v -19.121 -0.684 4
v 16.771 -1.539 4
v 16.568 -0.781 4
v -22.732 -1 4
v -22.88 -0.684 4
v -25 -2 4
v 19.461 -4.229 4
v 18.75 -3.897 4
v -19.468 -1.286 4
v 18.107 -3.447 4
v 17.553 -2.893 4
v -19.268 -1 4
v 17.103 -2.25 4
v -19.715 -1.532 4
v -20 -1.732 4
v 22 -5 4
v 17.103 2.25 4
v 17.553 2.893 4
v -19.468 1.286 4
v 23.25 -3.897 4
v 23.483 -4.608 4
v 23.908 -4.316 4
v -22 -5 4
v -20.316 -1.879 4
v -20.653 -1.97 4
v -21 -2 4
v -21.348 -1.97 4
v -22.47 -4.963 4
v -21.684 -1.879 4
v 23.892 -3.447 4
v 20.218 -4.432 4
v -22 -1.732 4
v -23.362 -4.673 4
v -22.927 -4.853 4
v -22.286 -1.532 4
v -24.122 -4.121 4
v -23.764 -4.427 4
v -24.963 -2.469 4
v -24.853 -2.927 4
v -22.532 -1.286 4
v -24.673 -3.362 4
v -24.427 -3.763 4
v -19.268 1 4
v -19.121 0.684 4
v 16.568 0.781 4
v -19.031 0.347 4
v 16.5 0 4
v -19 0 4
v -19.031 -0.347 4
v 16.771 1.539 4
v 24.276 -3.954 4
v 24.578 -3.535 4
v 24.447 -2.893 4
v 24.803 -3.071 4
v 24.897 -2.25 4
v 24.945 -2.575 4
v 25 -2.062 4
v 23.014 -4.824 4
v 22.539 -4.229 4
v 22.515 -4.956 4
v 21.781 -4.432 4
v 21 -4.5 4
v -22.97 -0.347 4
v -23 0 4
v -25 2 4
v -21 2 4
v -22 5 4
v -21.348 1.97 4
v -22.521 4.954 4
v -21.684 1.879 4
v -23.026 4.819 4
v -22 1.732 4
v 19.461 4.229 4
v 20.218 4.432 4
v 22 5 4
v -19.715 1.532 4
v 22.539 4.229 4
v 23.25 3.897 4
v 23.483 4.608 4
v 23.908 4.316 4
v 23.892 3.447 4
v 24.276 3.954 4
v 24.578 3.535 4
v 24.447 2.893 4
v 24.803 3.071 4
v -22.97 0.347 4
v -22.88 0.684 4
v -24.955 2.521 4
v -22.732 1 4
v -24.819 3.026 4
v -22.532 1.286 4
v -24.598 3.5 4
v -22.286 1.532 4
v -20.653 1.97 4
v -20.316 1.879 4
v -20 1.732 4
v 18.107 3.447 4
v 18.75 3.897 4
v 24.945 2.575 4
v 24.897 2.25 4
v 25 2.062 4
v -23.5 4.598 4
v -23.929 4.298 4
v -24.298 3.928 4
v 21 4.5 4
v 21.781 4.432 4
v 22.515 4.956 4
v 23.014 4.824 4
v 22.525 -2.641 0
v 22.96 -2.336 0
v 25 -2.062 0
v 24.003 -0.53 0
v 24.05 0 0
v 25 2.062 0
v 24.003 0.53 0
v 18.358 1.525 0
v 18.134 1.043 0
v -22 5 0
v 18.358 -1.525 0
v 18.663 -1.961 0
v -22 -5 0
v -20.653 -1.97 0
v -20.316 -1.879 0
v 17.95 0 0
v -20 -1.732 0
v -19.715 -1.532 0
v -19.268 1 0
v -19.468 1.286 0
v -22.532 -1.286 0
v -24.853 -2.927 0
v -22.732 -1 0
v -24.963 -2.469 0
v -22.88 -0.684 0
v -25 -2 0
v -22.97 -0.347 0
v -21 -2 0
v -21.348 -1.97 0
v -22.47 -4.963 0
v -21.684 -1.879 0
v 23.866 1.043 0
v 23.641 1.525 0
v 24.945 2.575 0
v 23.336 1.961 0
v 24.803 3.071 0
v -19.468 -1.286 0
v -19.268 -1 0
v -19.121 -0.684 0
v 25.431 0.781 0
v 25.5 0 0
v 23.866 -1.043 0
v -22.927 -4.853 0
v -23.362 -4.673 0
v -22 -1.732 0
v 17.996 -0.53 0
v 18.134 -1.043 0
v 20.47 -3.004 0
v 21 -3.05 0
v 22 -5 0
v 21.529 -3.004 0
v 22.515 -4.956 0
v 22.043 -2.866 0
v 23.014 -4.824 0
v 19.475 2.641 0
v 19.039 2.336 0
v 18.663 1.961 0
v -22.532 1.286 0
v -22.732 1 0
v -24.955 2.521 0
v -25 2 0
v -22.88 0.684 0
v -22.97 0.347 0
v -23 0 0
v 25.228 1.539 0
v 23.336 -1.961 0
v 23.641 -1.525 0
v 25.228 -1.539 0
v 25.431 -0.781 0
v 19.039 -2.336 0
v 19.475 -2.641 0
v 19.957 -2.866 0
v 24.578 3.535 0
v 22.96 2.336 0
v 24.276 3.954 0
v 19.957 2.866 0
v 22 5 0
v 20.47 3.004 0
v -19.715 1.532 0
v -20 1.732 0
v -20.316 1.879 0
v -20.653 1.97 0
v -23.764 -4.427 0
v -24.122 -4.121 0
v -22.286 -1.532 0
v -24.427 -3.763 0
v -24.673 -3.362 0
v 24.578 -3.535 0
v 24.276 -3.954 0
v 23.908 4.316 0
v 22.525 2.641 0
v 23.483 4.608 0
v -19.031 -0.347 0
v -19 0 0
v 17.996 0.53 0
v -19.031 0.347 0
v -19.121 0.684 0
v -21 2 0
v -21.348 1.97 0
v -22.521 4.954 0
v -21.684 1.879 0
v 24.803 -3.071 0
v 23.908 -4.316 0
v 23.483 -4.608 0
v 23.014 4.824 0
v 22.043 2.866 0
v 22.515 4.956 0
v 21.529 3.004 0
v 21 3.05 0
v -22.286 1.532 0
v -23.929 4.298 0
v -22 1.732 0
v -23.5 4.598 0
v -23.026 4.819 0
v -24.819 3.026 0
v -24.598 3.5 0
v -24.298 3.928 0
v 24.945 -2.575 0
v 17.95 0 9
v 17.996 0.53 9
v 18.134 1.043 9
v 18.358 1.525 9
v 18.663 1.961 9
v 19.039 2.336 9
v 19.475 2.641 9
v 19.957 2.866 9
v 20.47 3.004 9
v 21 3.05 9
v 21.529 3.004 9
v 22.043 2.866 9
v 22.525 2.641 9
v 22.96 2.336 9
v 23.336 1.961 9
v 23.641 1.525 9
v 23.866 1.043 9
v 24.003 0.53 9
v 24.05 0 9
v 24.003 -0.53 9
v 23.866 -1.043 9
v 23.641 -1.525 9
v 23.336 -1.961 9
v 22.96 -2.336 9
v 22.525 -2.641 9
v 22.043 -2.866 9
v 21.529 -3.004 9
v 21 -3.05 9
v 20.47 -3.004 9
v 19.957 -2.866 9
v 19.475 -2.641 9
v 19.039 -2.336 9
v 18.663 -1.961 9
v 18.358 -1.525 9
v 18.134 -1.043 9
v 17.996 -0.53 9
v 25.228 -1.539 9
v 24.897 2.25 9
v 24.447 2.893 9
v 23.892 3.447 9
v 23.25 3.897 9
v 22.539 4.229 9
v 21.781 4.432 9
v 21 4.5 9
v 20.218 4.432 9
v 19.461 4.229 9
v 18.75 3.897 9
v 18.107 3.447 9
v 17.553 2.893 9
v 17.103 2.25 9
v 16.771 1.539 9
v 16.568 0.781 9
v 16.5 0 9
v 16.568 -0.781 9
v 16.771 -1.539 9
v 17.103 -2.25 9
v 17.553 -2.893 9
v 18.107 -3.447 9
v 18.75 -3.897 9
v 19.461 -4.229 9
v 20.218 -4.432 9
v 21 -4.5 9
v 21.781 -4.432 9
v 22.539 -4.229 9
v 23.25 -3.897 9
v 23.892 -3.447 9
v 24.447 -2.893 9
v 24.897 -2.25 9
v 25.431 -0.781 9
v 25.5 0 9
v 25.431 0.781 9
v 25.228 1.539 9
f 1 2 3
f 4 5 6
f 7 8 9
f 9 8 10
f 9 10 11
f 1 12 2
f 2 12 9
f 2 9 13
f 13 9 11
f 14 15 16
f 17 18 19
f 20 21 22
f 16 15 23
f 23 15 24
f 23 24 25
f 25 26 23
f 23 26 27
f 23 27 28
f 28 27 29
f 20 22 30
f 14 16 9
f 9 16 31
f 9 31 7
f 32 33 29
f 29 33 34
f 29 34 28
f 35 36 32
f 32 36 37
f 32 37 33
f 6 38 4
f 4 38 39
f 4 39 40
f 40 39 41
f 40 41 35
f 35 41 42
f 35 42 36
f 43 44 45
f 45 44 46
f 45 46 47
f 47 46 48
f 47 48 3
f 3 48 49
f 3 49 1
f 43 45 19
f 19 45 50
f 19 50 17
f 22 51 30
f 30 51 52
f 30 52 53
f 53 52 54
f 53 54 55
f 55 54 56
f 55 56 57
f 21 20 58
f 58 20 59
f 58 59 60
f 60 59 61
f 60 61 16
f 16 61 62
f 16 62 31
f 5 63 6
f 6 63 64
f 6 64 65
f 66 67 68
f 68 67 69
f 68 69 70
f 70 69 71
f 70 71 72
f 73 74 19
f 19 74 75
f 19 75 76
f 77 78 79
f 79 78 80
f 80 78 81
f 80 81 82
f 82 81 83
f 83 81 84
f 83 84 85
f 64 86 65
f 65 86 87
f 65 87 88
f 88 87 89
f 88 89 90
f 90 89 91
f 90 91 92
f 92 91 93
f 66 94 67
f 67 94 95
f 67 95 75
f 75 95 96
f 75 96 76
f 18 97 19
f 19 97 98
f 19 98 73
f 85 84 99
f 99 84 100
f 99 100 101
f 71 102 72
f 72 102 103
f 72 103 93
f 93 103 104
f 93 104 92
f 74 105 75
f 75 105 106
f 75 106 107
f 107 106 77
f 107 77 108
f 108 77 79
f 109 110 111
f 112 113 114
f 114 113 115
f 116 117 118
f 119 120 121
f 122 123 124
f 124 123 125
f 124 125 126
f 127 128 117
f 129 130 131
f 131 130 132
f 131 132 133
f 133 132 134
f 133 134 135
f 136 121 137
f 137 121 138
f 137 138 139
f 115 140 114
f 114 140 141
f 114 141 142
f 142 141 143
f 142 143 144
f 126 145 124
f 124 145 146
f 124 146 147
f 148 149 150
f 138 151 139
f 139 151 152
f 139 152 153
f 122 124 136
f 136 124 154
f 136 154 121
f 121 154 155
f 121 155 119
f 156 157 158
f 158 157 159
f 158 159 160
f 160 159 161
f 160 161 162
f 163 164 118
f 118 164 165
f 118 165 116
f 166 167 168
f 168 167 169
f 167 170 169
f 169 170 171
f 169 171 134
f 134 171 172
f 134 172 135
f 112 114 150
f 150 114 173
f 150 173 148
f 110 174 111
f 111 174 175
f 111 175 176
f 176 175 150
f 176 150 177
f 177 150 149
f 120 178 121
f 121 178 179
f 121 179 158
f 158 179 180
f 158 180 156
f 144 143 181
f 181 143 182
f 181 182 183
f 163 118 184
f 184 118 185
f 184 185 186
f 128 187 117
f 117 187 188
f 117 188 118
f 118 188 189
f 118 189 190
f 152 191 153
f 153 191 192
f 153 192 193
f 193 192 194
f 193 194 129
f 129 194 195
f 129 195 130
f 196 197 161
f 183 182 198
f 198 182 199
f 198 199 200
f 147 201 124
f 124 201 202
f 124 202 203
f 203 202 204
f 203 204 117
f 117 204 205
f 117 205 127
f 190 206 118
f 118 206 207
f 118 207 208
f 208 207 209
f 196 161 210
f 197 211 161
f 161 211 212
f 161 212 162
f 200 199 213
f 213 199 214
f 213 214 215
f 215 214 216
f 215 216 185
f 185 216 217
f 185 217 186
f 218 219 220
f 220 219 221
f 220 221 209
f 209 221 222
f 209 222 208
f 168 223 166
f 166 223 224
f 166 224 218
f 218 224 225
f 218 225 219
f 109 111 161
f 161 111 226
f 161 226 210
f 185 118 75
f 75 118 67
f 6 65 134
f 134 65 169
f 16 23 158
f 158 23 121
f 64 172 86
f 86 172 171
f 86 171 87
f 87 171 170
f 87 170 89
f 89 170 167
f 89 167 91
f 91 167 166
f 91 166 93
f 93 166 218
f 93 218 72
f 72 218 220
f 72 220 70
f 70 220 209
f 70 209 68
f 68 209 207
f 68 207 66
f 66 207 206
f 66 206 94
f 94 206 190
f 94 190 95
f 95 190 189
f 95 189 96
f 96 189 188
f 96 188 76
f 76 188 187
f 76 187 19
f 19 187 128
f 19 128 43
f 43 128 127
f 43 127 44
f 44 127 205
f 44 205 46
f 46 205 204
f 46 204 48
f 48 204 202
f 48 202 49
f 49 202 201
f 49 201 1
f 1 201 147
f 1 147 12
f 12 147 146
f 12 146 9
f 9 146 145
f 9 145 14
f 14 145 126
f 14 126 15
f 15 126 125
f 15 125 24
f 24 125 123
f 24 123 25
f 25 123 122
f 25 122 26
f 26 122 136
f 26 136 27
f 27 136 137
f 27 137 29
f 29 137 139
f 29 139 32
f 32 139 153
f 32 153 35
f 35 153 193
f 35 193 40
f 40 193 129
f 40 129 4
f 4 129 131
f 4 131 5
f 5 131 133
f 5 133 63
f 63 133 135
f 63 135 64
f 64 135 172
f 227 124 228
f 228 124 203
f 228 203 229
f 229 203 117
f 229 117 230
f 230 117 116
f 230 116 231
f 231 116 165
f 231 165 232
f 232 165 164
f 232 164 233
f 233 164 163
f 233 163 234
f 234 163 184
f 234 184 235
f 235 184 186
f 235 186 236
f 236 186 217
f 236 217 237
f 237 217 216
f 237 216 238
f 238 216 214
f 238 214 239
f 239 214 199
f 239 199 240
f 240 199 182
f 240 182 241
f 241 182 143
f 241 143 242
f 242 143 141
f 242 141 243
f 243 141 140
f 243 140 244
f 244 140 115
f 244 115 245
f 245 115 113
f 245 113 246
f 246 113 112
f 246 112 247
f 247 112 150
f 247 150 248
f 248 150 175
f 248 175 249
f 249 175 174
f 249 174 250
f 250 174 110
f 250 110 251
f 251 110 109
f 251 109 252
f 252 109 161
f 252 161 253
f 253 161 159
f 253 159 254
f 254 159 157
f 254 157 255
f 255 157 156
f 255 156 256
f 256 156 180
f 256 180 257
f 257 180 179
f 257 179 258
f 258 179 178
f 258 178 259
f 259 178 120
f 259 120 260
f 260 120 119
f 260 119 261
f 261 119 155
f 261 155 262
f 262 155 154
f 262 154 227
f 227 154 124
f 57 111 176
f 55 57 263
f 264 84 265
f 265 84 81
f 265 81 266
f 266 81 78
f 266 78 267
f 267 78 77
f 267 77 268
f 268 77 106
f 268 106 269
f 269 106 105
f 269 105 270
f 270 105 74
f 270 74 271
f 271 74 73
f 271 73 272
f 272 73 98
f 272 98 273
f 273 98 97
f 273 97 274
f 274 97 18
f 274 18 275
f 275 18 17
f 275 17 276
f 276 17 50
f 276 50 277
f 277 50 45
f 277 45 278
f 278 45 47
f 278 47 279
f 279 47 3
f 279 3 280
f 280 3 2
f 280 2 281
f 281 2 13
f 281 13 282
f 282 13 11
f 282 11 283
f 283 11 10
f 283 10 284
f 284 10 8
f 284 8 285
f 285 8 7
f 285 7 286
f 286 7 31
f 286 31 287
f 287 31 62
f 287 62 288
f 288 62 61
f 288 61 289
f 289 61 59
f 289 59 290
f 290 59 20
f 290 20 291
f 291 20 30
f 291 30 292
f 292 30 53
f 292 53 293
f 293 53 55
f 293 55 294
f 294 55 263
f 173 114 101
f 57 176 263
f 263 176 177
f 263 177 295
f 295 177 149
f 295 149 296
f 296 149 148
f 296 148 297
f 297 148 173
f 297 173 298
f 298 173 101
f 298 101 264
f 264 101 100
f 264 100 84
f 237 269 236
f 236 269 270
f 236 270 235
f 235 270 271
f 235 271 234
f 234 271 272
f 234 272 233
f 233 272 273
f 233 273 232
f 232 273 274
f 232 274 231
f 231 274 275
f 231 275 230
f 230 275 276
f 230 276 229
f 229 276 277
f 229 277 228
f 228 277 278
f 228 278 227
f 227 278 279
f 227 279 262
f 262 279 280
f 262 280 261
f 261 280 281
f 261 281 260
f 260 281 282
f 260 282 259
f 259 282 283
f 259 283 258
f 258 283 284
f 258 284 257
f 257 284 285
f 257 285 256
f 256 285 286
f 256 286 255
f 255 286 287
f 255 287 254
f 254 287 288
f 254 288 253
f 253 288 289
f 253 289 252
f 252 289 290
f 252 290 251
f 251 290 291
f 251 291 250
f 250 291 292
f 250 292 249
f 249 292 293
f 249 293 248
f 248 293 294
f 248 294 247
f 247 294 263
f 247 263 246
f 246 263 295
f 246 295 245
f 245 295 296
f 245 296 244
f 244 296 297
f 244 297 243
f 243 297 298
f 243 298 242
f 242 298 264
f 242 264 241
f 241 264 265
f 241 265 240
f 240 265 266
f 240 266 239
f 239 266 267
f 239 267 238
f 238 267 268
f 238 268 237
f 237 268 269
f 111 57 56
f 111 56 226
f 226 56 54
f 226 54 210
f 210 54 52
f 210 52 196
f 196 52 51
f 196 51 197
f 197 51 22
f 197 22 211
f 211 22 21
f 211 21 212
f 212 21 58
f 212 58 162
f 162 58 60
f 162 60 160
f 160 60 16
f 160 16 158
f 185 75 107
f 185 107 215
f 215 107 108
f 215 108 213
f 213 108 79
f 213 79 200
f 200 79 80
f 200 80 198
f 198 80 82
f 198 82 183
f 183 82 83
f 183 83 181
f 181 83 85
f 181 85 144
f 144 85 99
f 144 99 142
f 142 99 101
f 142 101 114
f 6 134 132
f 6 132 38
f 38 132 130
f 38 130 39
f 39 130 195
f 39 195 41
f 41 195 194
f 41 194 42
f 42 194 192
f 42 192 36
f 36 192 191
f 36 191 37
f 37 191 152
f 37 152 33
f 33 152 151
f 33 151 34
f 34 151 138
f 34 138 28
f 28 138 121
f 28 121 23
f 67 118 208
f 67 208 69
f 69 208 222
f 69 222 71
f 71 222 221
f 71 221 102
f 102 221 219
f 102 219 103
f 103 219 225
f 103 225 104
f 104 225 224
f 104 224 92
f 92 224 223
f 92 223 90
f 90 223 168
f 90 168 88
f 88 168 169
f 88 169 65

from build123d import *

# Parameters (mm, degrees)
SKETCH_1_W           = 50
SKETCH_1_H           = 10
SKETCH_1_R           = 3.05
SKETCH_1_R_2         = 2
EXTRUDE_1_DEPTH      = 4
EXTRUDE_2_DEPTH      = 5
EXTRUDE_2_DEPTH_BACK = 4
SKETCH_2_R           = 4.5
SKETCH_2_R_2         = 3.05
FILLET_1_R           = 3


with BuildPart() as part:
    # 草图1 → 凸台-拉伸1 (new body)
    with BuildSketch(Plane.XY):
        Rectangle(SKETCH_1_W, SKETCH_1_H)
        with Locations((21, 0)):
            Circle(SKETCH_1_R, mode=Mode.SUBTRACT)
        with Locations((-21, 0)):
            Circle(SKETCH_1_R_2, mode=Mode.SUBTRACT)
    extrude(amount=EXTRUDE_1_DEPTH)

    # 草图2 → 凸台-拉伸2 (add, two sides: drawn at the far end of the back side and taken through both)
    with BuildSketch(Plane.XY.offset(4).offset(-EXTRUDE_2_DEPTH_BACK)):
        with Locations((21, 0)):
            Circle(SKETCH_2_R)
        with Locations((21, 0)):
            Circle(SKETCH_2_R_2, mode=Mode.SUBTRACT)
    extrude(amount=EXTRUDE_2_DEPTH + EXTRUDE_2_DEPTH_BACK)

    # 圆角1
    # the kernel refuses this fillet: 3 mm, written as the material it takes off along each edge
    with BuildSketch(Plane(origin=(25, -5, -7.5), x_dir=(-1, 0, 0), z_dir=(0, 0, 1))) as fillet_1_piece_1_section:
        with BuildLine():
            CenterArc((FILLET_1_R, -FILLET_1_R), FILLET_1_R, 90, 90)
            Line((0, -FILLET_1_R), (0, 0))
            Line((0, 0), (FILLET_1_R, 0))
        make_face()
    fillet_1_piece_1 = extrude(amount=19, mode=Mode.PRIVATE)
    fillet_1_piece_1 = fillet_1_piece_1 - Plane(origin=(21, 0, 2), x_dir=(1, 0, 0), z_dir=(0, 0, 1)) * Cylinder(4.5, 50, mode=Mode.PRIVATE)
    add(fillet_1_piece_1, mode=Mode.SUBTRACT)
    with BuildSketch(Plane(origin=(25, 5, -7.5), x_dir=(-1, 0, 0), z_dir=(0, 0, 1))) as fillet_1_piece_2_section:
        with BuildLine():
            CenterArc((FILLET_1_R, FILLET_1_R), FILLET_1_R, 180, 90)
            Line((0, FILLET_1_R), (0, 0))
            Line((0, 0), (FILLET_1_R, 0))
        make_face()
    fillet_1_piece_2 = extrude(amount=19, mode=Mode.PRIVATE)
    fillet_1_piece_2 = fillet_1_piece_2 - Plane(origin=(21, 0, 2), x_dir=(1, 0, 0), z_dir=(0, 0, 1)) * Cylinder(4.5, 50, mode=Mode.PRIVATE)
    add(fillet_1_piece_2, mode=Mode.SUBTRACT)
    with BuildSketch(Plane(origin=(-25, -5, -7.5), x_dir=(0, 1, 0), z_dir=(0, 0, 1)), Plane(origin=(-25, 5, -7.5), x_dir=(1, 0, 0), z_dir=(0, 0, 1))) as fillet_1_piece_3:
        with BuildLine():
            CenterArc((FILLET_1_R, -FILLET_1_R), FILLET_1_R, 90, 90)
            Line((0, -FILLET_1_R), (0, 0))
            Line((0, 0), (FILLET_1_R, 0))
        make_face()
    extrude(amount=19, mode=Mode.SUBTRACT)


solid = part.part
